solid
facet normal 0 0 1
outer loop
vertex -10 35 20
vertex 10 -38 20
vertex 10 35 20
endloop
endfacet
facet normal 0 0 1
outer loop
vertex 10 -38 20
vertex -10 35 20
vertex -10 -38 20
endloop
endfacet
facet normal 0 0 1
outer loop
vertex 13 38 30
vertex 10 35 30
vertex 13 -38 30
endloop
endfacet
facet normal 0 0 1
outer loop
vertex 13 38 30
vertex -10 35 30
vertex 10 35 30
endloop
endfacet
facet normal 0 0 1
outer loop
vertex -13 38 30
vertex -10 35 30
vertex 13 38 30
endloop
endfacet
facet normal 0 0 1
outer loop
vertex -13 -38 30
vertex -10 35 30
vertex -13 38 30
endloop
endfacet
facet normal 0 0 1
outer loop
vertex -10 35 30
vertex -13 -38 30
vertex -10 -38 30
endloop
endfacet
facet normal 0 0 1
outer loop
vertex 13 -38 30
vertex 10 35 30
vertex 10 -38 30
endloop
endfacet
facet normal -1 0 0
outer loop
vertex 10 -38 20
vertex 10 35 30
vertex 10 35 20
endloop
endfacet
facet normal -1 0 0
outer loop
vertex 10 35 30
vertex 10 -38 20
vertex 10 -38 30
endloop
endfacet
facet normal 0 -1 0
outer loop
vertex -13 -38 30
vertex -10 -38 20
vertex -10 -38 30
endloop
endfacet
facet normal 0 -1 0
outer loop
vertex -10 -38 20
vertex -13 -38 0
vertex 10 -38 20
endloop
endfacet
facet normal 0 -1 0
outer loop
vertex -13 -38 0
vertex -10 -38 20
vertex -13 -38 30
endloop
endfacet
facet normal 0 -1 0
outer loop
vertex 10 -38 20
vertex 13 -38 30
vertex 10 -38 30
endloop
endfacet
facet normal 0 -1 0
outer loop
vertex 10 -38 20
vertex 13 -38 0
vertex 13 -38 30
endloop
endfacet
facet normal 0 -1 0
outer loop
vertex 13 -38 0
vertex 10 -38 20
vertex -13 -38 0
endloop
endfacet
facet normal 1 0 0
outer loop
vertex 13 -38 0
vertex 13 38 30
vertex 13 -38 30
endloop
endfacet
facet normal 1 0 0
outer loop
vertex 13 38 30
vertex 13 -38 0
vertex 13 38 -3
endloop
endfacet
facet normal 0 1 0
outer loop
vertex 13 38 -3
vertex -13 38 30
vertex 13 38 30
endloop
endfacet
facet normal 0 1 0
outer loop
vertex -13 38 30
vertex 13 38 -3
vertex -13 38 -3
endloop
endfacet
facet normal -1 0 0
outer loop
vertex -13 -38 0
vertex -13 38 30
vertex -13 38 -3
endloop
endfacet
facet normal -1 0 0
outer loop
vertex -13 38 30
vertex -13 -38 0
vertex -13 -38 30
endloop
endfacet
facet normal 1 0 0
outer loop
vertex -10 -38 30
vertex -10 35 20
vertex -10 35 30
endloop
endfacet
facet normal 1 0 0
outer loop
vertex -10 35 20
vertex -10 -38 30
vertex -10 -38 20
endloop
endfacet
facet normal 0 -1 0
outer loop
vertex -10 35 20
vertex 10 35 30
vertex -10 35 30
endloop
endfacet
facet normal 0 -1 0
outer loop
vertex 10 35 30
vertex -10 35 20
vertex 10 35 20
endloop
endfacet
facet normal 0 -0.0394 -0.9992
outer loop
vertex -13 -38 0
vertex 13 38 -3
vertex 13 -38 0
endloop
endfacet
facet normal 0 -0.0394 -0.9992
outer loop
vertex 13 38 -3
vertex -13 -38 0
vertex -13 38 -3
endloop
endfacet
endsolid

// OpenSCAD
// Customize here
depth = 20;
width = 70;

// how thick are edges and base
thickness = 3;
edge_height = 10;

screw_diameter = 5;

// how much should the base be lifted, before additional angle
// (should not be less than thickness)
lift = 20;

// how much additional height should taller end add?
wedge_depth = 3;


// calculated params
outer_depth = depth + thickness*2;
outer_width = width + thickness*2;
base_height = lift;


/*color("Wheat") linear_extrude(height=100){
    square([depth, width], true);
}*/

color("red") {
    union() {
        difference() {
            translate([0,0,base_height]) linear_extrude(height=edge_height,convexity=10){
                difference() {
                    square([outer_depth, outer_width], true);
                    square([depth, width], true);
                    translate([0,outer_width/2*-1,0]) square([depth, width], true);
                }
            }
            //translate([outer_depth/2,0,base_height+(edge_height/2)]) rotate([0,90,0]) 
              //  cylinder(outer_depth, screw_diameter/2, screw_diameter/2, true,$fn=100);
        }
        linear_extrude(height=base_height){
            square([outer_depth, outer_width], true);
        }
        
        triangle_points = [[0,0],[0,outer_width],[wedge_depth,outer_width]];
        triangle_paths = [[0,1,2]];

        translate([outer_depth/2*-1,outer_width/2*-1,0]) rotate([0,90,0]) linear_extrude(height=outer_depth) {
            polygon(triangle_points,triangle_paths,10);
        }
    }
}
